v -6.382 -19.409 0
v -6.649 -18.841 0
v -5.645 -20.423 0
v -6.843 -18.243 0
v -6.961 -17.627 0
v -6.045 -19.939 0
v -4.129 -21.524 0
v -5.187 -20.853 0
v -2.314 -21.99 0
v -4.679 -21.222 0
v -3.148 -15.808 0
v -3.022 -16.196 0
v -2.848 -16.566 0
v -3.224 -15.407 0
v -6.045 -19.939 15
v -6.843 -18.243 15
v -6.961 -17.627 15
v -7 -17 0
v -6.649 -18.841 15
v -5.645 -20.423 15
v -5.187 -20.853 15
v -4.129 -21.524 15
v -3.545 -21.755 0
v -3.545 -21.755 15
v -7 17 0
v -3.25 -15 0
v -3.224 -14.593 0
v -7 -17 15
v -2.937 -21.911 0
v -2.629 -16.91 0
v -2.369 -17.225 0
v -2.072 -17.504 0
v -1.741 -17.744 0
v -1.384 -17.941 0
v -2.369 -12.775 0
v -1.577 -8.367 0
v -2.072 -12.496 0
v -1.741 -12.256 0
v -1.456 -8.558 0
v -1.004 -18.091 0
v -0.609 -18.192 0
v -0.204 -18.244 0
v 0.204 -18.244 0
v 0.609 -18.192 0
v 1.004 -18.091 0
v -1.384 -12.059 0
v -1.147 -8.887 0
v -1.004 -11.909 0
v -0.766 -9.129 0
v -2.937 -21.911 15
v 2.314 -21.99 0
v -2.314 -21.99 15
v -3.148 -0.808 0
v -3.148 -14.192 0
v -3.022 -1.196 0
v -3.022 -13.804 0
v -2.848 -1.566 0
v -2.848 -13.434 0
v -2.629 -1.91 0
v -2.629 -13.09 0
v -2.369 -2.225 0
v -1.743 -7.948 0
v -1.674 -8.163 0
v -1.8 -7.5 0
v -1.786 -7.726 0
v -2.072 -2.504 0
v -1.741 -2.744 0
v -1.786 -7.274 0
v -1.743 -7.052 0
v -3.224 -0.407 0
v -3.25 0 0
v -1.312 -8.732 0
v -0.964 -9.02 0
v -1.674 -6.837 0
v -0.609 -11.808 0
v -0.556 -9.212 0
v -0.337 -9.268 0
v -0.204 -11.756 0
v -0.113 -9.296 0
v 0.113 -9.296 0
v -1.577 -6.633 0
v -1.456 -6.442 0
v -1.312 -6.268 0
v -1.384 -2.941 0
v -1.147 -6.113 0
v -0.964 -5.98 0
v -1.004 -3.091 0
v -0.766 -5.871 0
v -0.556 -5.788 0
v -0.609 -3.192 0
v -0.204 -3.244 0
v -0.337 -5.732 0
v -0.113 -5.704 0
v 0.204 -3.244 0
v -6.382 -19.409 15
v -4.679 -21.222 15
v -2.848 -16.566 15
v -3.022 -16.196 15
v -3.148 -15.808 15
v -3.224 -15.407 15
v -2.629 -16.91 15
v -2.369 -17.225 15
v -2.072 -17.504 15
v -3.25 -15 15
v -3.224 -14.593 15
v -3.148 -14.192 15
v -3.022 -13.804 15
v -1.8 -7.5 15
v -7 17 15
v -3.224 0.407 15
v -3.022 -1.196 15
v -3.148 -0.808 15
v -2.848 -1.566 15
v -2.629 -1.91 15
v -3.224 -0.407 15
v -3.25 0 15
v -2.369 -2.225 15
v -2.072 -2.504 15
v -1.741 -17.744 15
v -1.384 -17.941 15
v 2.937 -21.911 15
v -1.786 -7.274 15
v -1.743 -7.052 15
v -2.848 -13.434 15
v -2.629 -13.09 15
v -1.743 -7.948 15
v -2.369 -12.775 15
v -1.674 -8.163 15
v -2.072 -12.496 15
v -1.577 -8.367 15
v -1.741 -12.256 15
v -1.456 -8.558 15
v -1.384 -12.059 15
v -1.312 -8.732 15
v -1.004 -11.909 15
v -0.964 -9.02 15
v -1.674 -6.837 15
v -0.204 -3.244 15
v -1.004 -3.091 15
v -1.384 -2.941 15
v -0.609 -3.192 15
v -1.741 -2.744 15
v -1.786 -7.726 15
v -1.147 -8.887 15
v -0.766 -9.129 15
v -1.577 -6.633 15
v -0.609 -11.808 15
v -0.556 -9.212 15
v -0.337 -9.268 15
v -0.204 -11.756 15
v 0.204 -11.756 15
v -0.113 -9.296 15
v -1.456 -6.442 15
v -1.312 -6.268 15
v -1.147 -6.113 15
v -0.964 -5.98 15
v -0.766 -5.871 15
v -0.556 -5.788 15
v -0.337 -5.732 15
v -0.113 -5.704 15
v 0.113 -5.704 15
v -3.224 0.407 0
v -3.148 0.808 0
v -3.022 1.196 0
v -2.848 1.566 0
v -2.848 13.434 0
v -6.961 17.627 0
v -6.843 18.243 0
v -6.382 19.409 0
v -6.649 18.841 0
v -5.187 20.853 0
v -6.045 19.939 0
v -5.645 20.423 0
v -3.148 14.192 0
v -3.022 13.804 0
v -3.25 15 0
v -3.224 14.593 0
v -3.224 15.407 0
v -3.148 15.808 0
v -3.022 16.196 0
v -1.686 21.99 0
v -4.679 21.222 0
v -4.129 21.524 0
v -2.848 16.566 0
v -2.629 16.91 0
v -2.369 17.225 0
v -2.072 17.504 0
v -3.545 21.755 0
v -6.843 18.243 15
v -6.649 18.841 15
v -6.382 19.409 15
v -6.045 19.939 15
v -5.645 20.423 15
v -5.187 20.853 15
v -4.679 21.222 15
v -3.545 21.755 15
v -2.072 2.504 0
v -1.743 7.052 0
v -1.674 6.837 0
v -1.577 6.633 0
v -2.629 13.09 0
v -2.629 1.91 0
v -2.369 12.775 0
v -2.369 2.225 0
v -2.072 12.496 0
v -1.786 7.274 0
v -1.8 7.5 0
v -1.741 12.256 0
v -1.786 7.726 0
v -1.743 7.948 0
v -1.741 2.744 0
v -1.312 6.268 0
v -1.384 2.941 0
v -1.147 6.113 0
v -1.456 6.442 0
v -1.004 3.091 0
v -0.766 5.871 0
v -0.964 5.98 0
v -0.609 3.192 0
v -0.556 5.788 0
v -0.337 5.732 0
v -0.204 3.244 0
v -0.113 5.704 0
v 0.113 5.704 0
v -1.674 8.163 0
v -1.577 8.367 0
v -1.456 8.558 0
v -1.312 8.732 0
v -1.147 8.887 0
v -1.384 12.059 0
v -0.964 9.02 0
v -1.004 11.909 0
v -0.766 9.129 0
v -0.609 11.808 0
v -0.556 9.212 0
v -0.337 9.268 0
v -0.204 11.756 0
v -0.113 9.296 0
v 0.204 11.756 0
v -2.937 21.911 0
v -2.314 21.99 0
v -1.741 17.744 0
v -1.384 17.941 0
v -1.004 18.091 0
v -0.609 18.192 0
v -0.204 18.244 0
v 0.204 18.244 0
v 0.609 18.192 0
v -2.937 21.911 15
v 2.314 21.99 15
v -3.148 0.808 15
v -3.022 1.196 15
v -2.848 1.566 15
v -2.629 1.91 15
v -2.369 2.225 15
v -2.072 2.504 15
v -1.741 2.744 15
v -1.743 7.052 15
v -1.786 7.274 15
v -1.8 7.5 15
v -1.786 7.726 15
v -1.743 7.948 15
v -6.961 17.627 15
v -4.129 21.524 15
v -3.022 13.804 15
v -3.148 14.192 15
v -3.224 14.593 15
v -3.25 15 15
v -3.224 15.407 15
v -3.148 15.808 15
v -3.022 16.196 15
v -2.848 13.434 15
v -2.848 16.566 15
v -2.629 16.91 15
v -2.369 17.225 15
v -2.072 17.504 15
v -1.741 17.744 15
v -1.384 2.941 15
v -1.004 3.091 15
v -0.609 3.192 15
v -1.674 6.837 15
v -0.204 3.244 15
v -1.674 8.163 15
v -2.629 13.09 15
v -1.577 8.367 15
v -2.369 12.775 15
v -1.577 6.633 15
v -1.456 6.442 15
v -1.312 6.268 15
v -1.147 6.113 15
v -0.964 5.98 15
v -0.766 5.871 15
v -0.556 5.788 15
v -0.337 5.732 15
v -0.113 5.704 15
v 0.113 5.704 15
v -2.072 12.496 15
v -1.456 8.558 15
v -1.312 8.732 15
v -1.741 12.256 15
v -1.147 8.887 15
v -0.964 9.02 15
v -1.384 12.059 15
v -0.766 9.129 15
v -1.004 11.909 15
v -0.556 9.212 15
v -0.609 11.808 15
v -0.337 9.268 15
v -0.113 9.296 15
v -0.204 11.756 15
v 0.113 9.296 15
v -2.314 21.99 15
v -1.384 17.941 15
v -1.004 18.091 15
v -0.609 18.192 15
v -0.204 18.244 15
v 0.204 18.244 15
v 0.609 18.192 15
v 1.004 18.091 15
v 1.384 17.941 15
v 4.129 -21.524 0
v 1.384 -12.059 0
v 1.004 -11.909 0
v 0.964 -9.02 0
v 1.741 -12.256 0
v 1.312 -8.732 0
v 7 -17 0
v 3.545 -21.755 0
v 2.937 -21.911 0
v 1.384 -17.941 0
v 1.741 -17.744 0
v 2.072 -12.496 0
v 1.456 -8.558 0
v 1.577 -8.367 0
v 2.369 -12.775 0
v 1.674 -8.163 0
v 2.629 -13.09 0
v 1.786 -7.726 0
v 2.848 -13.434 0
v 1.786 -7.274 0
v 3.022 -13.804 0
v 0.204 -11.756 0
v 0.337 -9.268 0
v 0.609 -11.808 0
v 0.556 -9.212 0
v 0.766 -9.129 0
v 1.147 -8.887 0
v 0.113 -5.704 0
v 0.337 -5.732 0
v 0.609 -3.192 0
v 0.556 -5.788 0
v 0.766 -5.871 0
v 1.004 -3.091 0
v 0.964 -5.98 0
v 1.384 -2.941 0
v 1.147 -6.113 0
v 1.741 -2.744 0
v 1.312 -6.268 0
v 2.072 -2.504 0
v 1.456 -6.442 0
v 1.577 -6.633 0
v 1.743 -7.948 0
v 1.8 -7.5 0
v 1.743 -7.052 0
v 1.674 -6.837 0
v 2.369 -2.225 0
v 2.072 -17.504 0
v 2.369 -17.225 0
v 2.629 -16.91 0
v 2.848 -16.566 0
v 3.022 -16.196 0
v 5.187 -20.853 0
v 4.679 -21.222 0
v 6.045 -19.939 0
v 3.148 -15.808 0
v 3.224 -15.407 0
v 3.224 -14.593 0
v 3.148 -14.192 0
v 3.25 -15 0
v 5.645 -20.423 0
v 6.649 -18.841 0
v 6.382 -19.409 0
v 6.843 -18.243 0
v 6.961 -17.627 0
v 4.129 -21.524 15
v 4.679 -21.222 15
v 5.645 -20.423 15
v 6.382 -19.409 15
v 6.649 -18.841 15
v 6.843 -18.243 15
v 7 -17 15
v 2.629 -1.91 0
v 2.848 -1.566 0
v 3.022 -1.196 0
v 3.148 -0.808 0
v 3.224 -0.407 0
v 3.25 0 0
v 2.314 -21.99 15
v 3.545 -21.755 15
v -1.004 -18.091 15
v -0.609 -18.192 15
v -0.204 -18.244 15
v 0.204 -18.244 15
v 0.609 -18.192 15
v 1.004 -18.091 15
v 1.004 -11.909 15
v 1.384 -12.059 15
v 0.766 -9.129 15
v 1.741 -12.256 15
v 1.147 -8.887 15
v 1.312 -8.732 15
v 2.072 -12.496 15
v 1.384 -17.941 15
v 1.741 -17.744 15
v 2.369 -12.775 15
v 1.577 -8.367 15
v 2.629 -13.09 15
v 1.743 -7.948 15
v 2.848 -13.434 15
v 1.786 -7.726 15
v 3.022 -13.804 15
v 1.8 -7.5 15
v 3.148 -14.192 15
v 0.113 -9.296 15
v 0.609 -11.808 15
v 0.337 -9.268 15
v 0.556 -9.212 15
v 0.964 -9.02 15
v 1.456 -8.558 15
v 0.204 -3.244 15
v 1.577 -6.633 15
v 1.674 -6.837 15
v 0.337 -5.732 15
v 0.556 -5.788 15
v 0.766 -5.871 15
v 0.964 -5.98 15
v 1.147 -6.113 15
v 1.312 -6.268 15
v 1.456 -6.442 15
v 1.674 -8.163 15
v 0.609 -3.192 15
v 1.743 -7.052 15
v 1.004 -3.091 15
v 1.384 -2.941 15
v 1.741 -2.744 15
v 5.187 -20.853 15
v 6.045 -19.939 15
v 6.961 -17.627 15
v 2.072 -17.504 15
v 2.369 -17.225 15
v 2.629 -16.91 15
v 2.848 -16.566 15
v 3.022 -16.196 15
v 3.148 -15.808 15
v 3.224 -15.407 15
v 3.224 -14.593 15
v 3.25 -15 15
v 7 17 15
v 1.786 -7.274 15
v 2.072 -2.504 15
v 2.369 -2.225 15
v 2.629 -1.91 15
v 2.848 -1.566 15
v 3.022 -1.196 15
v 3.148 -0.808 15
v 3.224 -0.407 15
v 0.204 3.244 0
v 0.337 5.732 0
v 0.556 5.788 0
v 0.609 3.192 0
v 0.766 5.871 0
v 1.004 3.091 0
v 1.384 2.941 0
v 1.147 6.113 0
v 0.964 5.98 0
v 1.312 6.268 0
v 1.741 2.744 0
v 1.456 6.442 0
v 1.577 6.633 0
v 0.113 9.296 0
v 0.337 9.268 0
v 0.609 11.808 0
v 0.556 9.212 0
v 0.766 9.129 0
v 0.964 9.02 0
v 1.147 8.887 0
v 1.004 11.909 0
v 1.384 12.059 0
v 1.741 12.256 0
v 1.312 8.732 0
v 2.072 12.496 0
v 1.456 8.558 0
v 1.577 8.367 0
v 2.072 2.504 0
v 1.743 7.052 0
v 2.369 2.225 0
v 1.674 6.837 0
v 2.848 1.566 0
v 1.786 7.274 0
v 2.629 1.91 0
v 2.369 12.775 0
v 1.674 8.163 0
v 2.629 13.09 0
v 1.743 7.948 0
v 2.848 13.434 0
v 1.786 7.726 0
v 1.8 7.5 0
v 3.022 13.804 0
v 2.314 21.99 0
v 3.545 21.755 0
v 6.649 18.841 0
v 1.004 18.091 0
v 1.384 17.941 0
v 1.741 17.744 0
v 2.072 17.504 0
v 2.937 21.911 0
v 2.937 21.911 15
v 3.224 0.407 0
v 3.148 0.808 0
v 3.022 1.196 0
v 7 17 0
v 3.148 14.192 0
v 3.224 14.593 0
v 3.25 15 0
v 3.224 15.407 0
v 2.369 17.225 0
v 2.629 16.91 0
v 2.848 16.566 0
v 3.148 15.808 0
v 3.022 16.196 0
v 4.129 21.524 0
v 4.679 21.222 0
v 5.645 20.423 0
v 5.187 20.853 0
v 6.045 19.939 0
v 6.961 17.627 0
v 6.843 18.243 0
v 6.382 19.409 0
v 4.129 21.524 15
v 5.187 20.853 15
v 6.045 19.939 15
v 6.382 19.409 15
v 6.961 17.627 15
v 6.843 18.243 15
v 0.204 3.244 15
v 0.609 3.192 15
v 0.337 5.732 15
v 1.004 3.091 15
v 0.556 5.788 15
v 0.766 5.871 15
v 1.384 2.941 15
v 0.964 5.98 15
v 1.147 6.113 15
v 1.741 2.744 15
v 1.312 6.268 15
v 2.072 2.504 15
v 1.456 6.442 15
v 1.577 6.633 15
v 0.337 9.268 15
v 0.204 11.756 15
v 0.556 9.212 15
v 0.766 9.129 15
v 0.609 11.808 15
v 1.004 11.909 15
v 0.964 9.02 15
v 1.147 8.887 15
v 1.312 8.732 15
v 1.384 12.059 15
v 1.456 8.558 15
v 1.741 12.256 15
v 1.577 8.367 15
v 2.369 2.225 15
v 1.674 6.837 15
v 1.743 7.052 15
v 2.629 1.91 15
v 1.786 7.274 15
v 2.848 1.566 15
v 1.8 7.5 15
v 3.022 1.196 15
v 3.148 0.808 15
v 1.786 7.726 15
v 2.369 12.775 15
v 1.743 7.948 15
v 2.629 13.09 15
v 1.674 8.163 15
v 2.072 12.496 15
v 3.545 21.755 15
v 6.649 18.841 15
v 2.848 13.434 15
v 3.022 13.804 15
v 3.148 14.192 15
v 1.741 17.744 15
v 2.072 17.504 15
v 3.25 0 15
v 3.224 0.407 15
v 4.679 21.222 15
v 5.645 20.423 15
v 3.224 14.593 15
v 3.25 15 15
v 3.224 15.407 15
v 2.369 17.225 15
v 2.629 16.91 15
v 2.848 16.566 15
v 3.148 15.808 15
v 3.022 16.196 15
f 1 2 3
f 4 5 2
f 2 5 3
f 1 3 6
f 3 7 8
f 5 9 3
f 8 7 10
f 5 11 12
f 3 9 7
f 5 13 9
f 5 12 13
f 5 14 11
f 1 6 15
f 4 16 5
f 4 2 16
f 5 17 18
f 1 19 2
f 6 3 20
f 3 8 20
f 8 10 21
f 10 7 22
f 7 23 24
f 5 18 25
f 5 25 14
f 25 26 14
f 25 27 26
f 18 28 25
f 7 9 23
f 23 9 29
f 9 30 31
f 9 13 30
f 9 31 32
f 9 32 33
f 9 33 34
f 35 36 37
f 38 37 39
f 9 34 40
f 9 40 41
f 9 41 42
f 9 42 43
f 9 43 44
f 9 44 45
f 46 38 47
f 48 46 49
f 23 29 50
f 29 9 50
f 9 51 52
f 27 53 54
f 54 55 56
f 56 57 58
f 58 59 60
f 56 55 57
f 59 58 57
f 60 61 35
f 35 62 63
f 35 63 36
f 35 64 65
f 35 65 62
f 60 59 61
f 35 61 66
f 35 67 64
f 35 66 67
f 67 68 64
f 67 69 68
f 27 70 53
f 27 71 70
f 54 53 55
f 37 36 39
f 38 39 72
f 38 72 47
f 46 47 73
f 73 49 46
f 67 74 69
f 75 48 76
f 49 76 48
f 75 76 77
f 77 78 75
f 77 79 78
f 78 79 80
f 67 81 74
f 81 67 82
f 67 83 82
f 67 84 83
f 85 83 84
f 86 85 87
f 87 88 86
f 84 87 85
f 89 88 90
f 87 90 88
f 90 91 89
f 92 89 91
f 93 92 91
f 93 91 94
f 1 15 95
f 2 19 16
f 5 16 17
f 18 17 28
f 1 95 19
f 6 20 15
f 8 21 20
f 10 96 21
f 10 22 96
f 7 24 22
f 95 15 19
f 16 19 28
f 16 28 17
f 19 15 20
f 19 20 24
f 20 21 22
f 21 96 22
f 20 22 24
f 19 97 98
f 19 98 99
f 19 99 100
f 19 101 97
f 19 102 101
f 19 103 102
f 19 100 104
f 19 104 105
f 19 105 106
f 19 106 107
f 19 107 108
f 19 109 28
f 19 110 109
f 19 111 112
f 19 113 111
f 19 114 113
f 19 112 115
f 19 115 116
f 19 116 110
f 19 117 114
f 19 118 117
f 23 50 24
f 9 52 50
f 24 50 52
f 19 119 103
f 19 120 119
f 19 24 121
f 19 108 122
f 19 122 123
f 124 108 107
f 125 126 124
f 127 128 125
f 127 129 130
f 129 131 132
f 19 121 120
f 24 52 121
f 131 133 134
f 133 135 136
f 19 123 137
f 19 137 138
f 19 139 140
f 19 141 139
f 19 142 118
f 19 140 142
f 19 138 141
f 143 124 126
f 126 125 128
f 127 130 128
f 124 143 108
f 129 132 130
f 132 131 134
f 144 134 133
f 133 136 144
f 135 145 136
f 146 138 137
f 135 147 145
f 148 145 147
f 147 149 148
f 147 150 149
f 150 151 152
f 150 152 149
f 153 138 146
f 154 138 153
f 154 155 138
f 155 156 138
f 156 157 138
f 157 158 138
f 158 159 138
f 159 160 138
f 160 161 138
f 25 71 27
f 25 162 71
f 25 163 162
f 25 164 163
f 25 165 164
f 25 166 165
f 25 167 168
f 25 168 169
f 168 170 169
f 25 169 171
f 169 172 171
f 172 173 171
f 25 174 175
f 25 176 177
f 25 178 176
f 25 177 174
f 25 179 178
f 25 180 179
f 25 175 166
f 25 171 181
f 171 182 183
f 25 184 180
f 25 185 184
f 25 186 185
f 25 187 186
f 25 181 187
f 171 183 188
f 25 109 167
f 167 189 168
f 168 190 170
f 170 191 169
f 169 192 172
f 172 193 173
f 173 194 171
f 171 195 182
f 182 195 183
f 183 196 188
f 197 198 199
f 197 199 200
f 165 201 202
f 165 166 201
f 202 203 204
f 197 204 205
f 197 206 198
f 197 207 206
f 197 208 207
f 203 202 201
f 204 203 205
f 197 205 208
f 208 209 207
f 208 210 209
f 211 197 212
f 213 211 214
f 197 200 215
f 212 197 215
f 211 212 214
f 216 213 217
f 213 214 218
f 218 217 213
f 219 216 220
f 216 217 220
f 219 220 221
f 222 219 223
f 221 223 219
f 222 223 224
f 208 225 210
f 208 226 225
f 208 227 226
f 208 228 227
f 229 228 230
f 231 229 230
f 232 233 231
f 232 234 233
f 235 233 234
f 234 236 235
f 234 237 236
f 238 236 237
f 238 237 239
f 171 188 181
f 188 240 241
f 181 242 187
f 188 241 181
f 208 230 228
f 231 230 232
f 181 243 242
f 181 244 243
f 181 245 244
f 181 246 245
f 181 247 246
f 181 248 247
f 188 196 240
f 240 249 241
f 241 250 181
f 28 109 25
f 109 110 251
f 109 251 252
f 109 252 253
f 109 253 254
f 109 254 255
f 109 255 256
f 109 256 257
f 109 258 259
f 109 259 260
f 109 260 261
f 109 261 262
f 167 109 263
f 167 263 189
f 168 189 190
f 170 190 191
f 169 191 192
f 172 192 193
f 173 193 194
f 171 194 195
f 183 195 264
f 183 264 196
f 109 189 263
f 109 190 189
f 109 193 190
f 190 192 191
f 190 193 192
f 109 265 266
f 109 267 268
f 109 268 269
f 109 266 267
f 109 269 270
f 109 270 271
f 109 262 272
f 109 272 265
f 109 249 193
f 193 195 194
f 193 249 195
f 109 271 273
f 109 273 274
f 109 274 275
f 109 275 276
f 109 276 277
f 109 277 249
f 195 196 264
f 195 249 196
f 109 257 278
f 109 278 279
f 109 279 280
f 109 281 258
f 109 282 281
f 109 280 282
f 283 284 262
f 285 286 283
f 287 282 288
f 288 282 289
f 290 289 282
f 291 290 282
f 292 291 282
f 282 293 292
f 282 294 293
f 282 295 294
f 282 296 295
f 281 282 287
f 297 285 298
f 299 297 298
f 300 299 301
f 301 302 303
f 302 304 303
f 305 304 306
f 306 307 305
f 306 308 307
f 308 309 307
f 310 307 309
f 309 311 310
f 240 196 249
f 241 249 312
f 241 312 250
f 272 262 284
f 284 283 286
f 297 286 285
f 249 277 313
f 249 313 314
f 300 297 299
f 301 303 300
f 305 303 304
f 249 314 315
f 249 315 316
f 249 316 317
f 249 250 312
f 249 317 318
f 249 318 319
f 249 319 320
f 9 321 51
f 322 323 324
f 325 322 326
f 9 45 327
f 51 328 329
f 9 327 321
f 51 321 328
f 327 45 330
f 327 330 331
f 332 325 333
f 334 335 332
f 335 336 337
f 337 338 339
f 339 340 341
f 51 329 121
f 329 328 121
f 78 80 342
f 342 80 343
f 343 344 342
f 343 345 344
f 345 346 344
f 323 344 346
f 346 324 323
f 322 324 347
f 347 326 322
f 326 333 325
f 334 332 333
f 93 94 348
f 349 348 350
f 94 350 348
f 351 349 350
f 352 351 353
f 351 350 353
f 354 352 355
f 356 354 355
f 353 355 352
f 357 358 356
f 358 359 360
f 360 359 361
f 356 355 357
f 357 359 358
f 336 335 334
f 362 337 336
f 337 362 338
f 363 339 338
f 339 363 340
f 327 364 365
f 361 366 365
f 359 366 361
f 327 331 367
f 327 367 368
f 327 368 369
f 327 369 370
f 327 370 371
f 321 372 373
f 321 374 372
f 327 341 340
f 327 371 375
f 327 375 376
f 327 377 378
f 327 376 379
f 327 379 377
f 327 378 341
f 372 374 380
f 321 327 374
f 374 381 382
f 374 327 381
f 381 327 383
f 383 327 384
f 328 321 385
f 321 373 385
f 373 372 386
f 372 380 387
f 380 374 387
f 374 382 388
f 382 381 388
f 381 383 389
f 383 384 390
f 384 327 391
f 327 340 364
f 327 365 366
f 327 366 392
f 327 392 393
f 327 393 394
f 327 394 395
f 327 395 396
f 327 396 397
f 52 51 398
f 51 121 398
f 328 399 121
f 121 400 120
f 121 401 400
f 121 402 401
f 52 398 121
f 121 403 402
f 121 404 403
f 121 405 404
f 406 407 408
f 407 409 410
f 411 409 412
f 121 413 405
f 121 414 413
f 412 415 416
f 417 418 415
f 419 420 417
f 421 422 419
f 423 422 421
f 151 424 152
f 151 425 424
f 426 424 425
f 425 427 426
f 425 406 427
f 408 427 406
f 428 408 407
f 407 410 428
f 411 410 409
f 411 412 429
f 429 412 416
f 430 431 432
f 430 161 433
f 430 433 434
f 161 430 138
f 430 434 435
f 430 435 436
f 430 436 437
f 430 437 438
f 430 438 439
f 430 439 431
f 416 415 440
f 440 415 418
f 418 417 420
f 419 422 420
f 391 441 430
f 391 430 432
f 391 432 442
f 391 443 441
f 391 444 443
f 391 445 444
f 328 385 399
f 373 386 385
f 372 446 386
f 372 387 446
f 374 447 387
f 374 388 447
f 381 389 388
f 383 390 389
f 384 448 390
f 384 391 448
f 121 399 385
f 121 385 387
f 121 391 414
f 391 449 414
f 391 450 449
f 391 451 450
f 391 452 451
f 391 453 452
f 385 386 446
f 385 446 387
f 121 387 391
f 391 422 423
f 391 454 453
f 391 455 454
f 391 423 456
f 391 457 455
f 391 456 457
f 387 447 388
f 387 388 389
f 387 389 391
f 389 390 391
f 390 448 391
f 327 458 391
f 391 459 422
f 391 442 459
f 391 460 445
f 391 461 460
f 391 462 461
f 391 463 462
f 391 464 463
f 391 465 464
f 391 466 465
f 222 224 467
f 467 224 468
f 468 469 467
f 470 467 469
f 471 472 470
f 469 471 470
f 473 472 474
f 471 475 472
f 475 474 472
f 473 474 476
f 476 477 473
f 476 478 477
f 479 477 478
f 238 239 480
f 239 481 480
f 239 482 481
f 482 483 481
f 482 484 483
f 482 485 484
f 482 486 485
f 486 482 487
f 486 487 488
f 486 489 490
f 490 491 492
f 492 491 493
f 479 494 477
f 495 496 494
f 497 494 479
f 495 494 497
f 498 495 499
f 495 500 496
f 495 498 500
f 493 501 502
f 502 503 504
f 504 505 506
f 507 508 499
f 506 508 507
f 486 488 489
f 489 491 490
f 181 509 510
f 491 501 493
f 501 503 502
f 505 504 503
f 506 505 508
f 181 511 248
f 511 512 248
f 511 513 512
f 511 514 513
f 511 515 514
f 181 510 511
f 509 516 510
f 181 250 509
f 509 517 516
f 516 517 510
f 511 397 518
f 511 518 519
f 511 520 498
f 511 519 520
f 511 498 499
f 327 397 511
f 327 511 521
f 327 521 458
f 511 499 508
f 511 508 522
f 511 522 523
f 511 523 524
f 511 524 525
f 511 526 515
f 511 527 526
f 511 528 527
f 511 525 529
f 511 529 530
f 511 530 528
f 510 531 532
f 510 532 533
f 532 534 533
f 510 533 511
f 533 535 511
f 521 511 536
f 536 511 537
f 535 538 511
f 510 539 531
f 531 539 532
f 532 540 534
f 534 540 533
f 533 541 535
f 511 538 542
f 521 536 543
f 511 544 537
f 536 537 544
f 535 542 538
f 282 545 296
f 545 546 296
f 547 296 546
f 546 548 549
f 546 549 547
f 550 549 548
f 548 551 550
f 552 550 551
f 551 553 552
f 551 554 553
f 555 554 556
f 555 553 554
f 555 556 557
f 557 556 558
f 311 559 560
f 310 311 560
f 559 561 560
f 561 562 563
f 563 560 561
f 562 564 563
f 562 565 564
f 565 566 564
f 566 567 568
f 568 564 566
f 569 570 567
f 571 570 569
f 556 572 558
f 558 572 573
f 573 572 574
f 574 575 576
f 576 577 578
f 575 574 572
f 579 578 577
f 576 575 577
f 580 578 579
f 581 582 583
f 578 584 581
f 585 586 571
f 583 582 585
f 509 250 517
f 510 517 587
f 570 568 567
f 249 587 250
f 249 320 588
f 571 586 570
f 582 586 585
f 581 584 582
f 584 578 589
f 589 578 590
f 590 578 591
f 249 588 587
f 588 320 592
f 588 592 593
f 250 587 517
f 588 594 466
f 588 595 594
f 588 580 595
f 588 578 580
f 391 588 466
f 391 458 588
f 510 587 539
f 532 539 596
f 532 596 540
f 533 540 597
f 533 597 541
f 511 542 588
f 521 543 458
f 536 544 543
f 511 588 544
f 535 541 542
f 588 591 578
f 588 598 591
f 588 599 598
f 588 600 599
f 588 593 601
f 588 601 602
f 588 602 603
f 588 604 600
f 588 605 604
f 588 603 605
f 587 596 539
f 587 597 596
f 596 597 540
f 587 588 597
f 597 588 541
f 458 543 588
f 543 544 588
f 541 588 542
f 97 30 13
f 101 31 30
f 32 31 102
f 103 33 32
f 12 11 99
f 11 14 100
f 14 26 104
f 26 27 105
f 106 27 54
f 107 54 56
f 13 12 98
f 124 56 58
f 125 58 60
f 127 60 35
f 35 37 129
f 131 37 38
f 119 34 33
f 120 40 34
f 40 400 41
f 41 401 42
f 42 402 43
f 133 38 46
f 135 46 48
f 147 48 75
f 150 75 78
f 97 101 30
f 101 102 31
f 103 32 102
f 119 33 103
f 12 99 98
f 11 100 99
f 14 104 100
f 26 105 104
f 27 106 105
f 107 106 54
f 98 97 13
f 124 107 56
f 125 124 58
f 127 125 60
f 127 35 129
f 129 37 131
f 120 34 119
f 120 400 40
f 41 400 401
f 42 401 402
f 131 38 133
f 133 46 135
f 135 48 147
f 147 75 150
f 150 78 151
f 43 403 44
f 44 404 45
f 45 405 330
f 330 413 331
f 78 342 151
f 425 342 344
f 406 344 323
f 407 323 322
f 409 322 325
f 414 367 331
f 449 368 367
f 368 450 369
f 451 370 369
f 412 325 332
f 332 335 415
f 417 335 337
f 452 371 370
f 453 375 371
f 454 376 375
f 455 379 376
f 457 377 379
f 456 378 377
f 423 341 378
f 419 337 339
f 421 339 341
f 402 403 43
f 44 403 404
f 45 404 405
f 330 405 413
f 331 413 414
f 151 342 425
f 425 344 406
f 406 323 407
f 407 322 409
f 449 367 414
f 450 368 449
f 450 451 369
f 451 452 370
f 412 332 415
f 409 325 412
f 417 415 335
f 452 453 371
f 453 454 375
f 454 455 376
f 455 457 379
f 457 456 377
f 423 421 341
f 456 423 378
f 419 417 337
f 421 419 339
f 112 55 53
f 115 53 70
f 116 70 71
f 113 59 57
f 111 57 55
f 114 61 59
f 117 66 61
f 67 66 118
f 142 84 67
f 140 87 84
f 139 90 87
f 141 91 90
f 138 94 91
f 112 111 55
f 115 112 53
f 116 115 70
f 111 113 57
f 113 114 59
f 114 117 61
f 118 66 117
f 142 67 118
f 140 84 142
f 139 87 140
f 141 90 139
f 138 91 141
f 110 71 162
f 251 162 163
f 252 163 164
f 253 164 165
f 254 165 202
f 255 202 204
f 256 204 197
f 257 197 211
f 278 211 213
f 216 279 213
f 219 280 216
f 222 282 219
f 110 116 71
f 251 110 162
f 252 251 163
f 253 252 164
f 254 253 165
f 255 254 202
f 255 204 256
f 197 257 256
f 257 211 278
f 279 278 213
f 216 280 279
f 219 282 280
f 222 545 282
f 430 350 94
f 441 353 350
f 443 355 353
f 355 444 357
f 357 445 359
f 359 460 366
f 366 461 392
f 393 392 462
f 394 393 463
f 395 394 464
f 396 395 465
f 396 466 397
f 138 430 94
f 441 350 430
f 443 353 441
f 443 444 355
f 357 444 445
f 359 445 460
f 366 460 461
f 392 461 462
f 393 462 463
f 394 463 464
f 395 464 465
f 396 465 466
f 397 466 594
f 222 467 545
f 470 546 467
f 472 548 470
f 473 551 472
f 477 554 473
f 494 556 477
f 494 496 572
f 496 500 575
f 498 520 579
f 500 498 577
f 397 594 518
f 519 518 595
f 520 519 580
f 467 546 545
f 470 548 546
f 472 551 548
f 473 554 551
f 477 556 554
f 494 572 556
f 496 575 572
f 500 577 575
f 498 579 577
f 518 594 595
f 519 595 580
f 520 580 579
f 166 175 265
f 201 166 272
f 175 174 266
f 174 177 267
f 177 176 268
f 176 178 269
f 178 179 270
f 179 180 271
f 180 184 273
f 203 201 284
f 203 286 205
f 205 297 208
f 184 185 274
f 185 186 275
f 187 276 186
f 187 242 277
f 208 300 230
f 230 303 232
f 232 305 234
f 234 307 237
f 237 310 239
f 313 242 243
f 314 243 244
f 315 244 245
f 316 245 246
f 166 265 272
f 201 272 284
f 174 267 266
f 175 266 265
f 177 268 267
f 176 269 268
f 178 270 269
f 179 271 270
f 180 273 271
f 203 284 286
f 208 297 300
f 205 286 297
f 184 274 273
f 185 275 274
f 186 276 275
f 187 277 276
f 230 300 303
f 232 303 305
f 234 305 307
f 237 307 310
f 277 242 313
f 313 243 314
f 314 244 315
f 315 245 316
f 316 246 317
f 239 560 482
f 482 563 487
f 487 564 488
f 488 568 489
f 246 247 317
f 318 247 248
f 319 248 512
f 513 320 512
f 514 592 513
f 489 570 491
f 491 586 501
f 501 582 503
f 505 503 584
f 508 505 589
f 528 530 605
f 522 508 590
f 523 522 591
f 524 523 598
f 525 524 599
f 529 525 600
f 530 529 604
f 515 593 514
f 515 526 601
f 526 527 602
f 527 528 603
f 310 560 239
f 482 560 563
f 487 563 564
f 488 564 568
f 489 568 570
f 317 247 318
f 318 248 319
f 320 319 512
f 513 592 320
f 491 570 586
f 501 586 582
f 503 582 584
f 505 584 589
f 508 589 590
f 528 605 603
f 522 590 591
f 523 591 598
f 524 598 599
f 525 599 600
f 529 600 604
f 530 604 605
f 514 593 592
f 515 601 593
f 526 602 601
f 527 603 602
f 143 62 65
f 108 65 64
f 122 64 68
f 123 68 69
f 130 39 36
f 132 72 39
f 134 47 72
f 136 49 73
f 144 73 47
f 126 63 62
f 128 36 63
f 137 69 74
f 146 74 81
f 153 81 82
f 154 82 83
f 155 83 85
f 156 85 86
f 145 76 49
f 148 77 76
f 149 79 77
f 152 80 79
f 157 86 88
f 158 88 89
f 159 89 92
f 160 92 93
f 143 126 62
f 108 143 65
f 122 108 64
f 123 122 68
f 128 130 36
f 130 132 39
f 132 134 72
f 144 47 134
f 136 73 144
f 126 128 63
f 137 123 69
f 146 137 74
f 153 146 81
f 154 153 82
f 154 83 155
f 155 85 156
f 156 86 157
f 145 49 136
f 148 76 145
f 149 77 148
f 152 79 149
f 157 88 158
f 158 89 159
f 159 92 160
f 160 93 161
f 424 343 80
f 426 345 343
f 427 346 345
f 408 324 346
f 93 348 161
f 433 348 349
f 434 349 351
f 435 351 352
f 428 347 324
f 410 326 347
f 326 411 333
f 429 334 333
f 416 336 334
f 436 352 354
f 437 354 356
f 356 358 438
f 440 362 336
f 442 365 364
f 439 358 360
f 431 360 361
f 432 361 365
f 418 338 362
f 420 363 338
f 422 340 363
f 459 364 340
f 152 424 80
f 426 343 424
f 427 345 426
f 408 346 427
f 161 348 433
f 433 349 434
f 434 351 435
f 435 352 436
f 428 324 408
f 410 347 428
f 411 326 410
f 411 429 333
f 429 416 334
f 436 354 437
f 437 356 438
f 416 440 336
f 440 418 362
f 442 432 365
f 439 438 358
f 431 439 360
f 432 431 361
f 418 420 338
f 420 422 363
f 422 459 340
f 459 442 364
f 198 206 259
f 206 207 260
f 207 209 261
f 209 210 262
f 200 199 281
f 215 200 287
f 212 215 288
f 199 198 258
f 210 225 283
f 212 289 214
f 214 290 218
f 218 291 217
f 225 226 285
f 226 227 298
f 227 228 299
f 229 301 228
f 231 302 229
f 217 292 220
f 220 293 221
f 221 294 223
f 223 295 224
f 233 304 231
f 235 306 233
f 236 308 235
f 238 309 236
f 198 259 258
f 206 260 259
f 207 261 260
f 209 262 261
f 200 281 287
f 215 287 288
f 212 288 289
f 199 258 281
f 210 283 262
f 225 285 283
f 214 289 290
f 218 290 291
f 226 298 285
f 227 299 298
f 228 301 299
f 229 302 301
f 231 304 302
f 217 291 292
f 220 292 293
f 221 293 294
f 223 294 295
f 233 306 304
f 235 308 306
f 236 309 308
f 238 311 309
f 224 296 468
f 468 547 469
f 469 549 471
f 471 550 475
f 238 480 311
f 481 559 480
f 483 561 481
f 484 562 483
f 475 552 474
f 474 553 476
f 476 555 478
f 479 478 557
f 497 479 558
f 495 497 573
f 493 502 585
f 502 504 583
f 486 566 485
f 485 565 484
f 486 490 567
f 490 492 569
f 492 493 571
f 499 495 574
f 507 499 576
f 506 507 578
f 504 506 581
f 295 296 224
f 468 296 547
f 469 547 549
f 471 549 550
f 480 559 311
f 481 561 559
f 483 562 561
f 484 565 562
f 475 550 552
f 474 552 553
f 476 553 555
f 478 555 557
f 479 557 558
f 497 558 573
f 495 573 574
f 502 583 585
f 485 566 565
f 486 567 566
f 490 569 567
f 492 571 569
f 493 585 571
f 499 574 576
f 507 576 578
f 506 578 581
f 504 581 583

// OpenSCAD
$fn = 50;

difference() {
	union() {
		hull() {
			translate(v = [-2.0, 17.0, 0]) {
				cylinder(h = 15, r = 5);
			}
			translate(v = [2.0, 17.0, 0]) {
				cylinder(h = 15, r = 5);
			}
			translate(v = [-2.0, -17.0, 0]) {
				cylinder(h = 15, r = 5);
			}
			translate(v = [2.0, -17.0, 0]) {
				cylinder(h = 15, r = 5);
			}
		}
	}
	union() {
		translate(v = [0.0, -15.0, 0]) {
			translate(v = [0, 0, -100]) {
				cylinder(h = 200, r = 3.25);
			}
		}
		translate(v = [0, 0, -100]) {
			cylinder(h = 200, r = 3.25);
		}
		translate(v = [0.0, 15.0, 0]) {
			translate(v = [0, 0, -100]) {
				cylinder(h = 200, r = 3.25);
			}
		}
		translate(v = [0.0, -15.0, 0]) {
			translate(v = [0, 0, -100]) {
				cylinder(h = 200, r = 1.8);
			}
		}
		translate(v = [0.0, -7.5, 0]) {
			translate(v = [0, 0, -100]) {
				cylinder(h = 200, r = 1.8);
			}
		}
		translate(v = [0, 0, -100]) {
			cylinder(h = 200, r = 1.8);
		}
		translate(v = [0.0, 7.5, 0]) {
			translate(v = [0, 0, -100]) {
				cylinder(h = 200, r = 1.8);
			}
		}
		translate(v = [0.0, 15.0, 0]) {
			translate(v = [0, 0, -100]) {
				cylinder(h = 200, r = 1.8);
			}
		}
	}
}
